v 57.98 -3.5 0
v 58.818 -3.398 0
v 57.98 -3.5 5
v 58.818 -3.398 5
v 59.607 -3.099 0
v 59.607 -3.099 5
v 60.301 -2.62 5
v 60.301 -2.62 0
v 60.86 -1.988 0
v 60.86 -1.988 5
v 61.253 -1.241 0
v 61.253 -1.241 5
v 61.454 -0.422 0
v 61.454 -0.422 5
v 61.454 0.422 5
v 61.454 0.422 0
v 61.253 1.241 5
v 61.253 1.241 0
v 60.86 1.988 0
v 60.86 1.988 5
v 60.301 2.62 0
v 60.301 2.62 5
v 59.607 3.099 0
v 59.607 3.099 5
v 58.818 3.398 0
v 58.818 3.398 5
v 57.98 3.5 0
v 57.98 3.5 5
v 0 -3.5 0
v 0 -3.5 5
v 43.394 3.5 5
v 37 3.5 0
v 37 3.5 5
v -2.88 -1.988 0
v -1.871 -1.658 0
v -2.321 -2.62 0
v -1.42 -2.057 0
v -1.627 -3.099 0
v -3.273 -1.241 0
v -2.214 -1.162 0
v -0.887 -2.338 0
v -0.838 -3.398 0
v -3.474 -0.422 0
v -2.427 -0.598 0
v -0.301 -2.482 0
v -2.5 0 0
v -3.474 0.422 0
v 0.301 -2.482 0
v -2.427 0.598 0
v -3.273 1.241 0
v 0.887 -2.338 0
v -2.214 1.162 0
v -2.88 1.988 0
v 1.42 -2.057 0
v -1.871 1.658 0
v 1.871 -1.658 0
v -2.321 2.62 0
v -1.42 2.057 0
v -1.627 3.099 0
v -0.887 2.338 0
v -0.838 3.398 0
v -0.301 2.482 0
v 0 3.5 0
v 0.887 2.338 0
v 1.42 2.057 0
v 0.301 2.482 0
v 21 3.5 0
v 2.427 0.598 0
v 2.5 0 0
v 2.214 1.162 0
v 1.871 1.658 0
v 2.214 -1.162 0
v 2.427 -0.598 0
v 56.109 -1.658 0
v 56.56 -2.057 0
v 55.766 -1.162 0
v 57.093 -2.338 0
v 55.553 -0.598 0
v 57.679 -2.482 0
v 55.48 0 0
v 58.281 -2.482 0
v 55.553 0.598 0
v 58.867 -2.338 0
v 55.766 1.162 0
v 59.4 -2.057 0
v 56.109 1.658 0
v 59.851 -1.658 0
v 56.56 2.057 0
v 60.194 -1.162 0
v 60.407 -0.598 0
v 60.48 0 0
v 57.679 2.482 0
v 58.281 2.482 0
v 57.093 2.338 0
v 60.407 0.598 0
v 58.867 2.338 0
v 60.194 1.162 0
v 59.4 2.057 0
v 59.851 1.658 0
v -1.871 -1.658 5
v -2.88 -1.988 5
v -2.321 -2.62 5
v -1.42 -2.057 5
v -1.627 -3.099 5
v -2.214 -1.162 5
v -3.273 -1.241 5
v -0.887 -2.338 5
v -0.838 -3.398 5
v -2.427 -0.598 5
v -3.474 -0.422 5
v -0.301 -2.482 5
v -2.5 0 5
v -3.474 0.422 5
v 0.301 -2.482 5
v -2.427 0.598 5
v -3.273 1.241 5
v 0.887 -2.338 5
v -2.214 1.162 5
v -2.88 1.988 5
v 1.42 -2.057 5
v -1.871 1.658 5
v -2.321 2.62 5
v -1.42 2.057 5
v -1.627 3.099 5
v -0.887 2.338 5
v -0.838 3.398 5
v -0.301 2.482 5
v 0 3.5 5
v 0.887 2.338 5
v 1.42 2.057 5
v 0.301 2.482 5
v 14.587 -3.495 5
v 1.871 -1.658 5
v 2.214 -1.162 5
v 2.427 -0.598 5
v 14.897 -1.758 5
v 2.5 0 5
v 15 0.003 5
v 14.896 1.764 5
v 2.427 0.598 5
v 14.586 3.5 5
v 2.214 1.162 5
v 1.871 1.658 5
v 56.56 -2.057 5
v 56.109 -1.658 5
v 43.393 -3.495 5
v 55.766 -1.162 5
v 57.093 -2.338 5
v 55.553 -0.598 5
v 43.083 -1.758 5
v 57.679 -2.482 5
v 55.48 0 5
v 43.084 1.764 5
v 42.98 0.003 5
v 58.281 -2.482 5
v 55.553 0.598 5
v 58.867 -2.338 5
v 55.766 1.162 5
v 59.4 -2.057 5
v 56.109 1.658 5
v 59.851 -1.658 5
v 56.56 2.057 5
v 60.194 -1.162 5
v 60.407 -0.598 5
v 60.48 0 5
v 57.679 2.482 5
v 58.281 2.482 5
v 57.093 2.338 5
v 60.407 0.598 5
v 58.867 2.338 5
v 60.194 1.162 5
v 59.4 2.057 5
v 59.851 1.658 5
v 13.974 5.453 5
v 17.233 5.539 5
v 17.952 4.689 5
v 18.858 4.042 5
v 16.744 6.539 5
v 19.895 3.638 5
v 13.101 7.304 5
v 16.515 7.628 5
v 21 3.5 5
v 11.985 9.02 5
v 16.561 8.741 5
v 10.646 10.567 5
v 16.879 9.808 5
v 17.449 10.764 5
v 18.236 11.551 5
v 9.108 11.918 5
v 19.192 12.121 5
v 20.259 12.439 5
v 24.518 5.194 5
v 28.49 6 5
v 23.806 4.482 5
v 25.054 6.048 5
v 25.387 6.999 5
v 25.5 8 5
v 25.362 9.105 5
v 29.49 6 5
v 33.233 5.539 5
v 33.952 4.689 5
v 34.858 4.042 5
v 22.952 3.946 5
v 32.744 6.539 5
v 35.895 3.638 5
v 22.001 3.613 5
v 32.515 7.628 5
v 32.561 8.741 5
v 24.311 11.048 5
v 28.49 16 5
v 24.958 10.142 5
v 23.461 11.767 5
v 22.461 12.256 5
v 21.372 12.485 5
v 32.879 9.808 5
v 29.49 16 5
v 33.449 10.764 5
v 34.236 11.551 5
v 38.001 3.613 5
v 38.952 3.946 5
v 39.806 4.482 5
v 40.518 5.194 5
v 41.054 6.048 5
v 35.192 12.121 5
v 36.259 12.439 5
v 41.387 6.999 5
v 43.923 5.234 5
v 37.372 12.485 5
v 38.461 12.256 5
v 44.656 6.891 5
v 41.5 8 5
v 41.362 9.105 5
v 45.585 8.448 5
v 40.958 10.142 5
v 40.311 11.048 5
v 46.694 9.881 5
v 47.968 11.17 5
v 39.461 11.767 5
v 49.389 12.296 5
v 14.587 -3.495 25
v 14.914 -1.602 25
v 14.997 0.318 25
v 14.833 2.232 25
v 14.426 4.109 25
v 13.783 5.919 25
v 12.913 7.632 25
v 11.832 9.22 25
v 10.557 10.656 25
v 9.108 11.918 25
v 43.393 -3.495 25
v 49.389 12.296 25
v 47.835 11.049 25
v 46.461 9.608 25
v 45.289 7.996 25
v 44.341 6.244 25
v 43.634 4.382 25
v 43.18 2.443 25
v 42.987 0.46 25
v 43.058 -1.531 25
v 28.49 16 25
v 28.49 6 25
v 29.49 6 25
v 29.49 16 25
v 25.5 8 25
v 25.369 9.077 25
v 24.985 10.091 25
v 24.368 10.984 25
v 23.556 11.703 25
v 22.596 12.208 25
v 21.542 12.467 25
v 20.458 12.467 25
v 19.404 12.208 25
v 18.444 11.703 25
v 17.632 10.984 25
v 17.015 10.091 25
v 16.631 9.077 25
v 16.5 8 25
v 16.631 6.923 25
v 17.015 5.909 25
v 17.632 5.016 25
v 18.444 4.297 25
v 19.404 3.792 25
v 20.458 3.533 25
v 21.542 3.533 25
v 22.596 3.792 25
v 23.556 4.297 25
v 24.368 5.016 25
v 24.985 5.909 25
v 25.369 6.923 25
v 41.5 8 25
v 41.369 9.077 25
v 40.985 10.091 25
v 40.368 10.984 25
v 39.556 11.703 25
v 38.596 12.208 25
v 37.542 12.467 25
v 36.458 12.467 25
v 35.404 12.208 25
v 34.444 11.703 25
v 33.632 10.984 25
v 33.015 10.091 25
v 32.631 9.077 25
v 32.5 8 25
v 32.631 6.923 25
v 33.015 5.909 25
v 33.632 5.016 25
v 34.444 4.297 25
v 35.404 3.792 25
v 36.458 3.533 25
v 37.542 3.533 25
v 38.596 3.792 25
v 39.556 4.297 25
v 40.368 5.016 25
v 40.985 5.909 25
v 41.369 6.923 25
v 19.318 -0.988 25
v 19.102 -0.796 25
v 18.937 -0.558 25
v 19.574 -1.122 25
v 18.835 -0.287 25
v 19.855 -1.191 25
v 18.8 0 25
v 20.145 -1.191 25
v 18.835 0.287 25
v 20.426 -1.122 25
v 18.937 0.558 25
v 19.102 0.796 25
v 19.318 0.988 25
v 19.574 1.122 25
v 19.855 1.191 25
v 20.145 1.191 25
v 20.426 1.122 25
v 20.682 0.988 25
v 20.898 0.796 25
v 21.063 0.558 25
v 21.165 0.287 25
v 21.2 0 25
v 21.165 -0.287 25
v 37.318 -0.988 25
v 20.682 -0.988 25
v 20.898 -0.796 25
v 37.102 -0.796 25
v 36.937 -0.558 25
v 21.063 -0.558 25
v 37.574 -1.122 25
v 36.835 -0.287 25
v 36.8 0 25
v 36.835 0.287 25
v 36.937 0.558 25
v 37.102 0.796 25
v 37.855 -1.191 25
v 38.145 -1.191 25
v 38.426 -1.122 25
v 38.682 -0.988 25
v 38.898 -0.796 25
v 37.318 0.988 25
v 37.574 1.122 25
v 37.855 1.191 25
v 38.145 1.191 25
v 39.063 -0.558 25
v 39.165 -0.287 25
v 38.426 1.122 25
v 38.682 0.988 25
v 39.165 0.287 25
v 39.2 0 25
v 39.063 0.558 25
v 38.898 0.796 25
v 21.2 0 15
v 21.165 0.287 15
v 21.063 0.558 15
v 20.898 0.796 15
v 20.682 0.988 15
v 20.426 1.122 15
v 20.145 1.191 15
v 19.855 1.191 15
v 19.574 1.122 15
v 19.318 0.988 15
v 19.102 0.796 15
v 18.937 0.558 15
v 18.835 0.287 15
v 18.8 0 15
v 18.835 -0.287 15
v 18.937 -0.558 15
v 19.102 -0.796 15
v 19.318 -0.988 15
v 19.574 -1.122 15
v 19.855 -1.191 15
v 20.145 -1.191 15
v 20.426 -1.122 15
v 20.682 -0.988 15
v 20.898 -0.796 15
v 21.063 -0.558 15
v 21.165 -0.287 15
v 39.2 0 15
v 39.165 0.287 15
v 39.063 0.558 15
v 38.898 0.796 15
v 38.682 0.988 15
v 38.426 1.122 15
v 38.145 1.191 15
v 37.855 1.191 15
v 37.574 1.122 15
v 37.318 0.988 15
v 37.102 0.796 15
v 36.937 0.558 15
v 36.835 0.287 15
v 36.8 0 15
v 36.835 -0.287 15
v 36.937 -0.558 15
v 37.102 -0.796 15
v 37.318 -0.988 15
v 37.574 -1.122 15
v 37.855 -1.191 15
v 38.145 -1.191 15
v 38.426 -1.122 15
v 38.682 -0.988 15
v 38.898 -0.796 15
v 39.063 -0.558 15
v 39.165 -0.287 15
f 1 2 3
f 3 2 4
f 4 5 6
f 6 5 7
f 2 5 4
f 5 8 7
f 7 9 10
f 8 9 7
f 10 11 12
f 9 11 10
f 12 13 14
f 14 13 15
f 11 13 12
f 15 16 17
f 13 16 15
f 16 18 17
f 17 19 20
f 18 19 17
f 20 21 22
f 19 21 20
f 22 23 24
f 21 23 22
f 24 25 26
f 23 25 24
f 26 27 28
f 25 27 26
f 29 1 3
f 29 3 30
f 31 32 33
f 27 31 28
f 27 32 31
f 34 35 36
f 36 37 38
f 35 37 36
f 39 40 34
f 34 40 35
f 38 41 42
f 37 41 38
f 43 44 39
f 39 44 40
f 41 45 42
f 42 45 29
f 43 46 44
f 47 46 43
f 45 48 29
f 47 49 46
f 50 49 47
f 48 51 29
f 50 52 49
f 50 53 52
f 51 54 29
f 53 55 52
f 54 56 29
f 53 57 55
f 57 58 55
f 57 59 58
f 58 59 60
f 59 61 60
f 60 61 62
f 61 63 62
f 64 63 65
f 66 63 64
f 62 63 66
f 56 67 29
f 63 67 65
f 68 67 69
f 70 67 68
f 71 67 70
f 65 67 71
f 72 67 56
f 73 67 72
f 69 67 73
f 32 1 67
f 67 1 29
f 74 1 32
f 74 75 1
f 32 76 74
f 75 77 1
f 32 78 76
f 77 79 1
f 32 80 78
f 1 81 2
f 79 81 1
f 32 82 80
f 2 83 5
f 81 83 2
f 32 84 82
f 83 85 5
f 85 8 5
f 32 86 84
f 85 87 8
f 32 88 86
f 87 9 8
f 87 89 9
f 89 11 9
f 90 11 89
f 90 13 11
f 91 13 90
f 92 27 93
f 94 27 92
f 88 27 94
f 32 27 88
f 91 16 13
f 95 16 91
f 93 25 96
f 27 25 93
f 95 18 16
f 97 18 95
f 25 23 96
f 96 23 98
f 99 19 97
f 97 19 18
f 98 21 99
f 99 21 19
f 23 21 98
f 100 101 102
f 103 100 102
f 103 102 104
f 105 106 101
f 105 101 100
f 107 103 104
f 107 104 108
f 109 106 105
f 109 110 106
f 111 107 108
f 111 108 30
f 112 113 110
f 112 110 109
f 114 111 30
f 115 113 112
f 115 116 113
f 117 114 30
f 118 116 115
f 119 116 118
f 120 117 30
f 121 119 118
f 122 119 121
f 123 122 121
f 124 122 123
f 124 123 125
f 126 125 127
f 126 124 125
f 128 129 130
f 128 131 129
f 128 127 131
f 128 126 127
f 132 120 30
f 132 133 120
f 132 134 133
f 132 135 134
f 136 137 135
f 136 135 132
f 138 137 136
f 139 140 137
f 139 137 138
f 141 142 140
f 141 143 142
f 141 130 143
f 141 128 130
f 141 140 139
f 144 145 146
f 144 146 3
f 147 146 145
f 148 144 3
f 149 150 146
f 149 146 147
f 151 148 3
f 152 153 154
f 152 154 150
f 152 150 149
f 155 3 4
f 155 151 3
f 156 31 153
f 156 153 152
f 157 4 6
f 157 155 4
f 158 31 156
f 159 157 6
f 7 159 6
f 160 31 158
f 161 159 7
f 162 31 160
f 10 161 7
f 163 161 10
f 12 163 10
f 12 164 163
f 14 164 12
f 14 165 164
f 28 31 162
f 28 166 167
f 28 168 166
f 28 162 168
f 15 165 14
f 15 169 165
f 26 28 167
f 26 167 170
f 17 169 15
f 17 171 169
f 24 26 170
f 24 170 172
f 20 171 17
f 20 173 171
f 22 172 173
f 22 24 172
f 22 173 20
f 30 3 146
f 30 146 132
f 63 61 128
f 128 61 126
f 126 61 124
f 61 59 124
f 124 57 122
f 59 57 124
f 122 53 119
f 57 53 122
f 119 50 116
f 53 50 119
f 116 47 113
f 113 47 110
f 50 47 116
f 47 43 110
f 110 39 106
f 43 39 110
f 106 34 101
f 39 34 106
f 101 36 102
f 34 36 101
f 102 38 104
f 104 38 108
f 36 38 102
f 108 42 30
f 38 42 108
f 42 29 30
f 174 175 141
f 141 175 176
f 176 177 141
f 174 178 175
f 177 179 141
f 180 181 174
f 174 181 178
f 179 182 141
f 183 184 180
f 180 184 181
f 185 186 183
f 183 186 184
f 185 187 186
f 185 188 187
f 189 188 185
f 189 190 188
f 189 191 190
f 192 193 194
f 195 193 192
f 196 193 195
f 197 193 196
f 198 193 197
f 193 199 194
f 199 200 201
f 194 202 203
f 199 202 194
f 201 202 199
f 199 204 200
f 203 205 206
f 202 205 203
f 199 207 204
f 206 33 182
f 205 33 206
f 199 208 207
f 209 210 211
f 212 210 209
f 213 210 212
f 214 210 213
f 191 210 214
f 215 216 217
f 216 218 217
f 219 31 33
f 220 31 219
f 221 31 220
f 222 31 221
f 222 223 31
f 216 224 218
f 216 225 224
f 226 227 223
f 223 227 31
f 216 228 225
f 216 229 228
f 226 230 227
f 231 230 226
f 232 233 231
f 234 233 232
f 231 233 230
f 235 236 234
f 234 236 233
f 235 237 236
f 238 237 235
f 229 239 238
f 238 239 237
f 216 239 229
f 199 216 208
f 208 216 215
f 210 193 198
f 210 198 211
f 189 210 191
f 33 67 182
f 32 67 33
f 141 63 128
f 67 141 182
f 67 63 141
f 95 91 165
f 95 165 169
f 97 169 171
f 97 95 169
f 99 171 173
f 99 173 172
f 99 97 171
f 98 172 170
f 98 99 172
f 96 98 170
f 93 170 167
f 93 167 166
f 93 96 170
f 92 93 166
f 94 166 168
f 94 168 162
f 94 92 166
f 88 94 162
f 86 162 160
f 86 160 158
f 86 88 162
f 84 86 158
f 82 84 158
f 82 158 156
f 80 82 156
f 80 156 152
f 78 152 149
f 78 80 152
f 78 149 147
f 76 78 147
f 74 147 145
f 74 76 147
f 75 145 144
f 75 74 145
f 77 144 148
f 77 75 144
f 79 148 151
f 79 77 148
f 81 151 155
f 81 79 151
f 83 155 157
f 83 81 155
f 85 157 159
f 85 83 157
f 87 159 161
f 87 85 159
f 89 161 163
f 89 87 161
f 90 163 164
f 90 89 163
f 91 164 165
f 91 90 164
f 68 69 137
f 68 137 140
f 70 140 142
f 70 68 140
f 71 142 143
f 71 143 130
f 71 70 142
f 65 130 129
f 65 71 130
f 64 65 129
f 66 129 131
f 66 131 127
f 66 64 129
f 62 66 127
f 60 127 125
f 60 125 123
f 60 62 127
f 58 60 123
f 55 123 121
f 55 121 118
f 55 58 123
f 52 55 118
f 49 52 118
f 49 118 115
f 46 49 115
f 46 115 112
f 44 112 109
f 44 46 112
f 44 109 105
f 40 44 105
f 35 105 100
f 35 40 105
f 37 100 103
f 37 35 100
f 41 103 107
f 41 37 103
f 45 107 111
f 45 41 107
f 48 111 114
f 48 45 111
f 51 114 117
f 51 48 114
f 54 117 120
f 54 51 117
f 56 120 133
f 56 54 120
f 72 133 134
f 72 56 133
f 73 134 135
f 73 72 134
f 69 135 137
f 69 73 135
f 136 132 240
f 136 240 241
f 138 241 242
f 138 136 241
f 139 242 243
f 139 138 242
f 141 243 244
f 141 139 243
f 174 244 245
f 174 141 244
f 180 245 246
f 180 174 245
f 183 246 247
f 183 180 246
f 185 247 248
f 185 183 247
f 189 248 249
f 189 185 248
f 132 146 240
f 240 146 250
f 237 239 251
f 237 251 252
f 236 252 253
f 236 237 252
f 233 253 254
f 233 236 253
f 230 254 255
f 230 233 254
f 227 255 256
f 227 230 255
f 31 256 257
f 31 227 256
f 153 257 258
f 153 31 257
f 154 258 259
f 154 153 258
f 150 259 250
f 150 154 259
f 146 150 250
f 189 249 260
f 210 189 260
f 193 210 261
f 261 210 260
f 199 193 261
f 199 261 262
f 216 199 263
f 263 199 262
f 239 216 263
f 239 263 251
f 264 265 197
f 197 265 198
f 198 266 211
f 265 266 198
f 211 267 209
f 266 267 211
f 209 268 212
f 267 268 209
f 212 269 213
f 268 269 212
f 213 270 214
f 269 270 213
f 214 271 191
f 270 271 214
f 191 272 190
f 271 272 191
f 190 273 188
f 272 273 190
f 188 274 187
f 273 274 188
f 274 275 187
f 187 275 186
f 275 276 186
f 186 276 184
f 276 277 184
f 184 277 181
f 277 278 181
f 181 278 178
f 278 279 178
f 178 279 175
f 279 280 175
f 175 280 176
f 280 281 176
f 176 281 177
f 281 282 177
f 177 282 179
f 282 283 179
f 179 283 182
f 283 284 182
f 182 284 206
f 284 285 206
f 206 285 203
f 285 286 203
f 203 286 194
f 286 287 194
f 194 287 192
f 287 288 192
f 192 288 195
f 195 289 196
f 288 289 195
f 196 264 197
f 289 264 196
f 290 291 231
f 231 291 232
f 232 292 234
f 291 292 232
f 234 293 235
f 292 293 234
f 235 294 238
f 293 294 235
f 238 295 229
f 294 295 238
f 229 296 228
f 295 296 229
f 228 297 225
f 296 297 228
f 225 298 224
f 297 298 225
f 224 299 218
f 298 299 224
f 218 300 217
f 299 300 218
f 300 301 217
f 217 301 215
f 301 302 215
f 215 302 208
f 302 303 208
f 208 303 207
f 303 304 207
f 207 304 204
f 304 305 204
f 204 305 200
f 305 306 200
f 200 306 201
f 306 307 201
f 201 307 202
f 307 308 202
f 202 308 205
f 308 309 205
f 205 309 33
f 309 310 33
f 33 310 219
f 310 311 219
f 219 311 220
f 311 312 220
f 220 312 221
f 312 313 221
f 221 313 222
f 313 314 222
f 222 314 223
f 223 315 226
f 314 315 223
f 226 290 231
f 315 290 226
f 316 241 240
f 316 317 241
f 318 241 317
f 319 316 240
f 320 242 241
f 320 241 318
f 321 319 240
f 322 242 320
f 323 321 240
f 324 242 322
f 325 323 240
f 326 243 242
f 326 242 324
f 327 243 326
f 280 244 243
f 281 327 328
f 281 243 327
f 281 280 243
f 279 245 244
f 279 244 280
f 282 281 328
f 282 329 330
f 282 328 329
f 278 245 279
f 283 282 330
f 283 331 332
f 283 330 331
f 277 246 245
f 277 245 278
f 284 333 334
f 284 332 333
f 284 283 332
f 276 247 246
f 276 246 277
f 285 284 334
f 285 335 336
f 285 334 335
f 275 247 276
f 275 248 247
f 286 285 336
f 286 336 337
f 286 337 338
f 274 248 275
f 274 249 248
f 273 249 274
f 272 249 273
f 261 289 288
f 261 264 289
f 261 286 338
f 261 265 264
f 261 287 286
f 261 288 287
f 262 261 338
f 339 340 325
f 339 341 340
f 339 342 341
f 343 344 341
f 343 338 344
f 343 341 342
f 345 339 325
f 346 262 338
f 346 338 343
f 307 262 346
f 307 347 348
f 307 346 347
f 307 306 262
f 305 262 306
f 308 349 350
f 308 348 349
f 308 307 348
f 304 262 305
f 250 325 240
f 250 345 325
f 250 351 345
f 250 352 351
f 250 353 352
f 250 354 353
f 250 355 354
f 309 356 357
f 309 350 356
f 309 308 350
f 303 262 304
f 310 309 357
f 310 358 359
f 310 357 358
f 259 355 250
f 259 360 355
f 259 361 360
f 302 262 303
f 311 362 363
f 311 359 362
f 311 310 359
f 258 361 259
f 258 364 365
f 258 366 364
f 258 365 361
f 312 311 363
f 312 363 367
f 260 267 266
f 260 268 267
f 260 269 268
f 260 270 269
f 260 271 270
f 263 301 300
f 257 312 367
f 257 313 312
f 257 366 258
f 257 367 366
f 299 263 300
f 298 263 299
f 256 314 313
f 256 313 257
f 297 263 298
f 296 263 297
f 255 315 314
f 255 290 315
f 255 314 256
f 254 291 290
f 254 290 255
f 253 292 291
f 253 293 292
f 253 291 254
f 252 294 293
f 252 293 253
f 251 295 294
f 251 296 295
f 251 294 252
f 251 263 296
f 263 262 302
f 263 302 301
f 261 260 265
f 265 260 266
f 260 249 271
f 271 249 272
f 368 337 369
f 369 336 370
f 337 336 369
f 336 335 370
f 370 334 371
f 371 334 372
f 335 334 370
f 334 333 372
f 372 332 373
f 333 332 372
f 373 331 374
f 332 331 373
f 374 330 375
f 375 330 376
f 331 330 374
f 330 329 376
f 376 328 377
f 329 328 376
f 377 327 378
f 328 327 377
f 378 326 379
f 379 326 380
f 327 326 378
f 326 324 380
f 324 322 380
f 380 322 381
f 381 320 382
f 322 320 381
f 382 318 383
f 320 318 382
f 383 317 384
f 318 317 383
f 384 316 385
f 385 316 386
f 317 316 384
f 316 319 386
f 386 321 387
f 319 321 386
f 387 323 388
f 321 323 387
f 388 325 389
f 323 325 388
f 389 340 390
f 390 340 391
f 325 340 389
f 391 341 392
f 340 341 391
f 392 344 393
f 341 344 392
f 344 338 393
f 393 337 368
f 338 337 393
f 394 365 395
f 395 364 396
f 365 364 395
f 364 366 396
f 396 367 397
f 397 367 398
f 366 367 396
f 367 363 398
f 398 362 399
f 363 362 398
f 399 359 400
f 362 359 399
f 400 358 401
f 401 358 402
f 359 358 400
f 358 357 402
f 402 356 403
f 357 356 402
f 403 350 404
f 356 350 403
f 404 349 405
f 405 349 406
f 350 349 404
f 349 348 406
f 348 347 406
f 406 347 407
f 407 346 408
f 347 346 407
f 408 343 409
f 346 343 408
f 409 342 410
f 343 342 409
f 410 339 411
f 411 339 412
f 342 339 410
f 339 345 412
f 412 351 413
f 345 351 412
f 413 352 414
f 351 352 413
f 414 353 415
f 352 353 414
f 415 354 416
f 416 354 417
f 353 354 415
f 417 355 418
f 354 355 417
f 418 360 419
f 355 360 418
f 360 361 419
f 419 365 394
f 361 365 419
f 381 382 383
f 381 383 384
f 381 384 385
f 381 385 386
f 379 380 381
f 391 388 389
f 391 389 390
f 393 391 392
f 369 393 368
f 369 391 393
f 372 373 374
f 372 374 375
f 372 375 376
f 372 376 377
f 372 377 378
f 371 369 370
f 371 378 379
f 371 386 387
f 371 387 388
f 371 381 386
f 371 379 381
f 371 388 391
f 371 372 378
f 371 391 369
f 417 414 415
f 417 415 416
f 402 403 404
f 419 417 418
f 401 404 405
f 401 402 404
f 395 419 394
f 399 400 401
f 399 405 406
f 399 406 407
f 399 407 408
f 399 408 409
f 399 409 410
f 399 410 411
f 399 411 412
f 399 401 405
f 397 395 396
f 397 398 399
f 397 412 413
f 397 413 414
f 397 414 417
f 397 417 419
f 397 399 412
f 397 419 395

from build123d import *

# Parameters (mm, degrees)
SKETCH_R        = 2.5
PAD_DEPTH       = 5
PAD001_DEPTH    = 20
SKETCH002_R     = 1.2
POCKET_DEPTH    = 10
SKETCH003_R     = 4.5
POCKET001_DEPTH = 25.001


with BuildPart() as part:
    # Sketch → Pad (new body)
    with BuildSketch(Plane.XY):
        with BuildLine():
            ThreePointArc((0, 3.5), (-3.5, 0), (0, -3.5))
            Line((57.98, -3.5), (0, -3.5))
            ThreePointArc((57.98, -3.5), (61.48, 0), (57.98, 3.5))
            Line((0, 3.5), (57.98, 3.5))
        make_face()
        Circle(SKETCH_R, mode=Mode.SUBTRACT)
        with Locations((57.98, 0)):
            Circle(SKETCH_R, mode=Mode.SUBTRACT)
    extrude(amount=PAD_DEPTH)

    # Sketch001 (on Face8 of Pad) → Pad001 (join)
    with BuildSketch(Plane.XY.offset(5)):
        with BuildLine():
            Line((29.489935, 16), (29.489935, 6))
            Line((28.489935, 6), (29.489935, 6))
            Line((28.489935, 6), (28.489935, 15.99995))
            Line((9.108103, 11.918157), (28.489935, 15.99995))
            ThreePointArc((14.587373, -3.494502), (14.133535, 5.024439), (9.108103, 11.918157))
            Line((14.587373, -3.494502), (43.392665, -3.494502))
            ThreePointArc((49.388809, 12.296038), (43.956926, 5.32496), (43.392665, -3.494502))
            Line((29.489935, 16), (49.388809, 12.296038))
        make_face()
    extrude(amount=PAD001_DEPTH)

    # Sketch002 (on Face18 of Pad001) → Pocket (cut)
    with BuildSketch(Plane.XY.offset(25)):
        with Locations((20, 0)):
            Circle(SKETCH002_R)
        with Locations((38, 0)):
            Circle(SKETCH002_R)
    extrude(amount=-POCKET_DEPTH, mode=Mode.SUBTRACT)

    # Sketch003 (on Face18 of Pocket) → Pocket001 (cut, through all)
    with BuildSketch(Plane.XY.offset(25)):
        with Locations((21, 8)):
            Circle(SKETCH003_R)
        with Locations((37, 8)):
            Circle(SKETCH003_R)
    extrude(amount=-POCKET001_DEPTH, mode=Mode.SUBTRACT)


solid = part.part
